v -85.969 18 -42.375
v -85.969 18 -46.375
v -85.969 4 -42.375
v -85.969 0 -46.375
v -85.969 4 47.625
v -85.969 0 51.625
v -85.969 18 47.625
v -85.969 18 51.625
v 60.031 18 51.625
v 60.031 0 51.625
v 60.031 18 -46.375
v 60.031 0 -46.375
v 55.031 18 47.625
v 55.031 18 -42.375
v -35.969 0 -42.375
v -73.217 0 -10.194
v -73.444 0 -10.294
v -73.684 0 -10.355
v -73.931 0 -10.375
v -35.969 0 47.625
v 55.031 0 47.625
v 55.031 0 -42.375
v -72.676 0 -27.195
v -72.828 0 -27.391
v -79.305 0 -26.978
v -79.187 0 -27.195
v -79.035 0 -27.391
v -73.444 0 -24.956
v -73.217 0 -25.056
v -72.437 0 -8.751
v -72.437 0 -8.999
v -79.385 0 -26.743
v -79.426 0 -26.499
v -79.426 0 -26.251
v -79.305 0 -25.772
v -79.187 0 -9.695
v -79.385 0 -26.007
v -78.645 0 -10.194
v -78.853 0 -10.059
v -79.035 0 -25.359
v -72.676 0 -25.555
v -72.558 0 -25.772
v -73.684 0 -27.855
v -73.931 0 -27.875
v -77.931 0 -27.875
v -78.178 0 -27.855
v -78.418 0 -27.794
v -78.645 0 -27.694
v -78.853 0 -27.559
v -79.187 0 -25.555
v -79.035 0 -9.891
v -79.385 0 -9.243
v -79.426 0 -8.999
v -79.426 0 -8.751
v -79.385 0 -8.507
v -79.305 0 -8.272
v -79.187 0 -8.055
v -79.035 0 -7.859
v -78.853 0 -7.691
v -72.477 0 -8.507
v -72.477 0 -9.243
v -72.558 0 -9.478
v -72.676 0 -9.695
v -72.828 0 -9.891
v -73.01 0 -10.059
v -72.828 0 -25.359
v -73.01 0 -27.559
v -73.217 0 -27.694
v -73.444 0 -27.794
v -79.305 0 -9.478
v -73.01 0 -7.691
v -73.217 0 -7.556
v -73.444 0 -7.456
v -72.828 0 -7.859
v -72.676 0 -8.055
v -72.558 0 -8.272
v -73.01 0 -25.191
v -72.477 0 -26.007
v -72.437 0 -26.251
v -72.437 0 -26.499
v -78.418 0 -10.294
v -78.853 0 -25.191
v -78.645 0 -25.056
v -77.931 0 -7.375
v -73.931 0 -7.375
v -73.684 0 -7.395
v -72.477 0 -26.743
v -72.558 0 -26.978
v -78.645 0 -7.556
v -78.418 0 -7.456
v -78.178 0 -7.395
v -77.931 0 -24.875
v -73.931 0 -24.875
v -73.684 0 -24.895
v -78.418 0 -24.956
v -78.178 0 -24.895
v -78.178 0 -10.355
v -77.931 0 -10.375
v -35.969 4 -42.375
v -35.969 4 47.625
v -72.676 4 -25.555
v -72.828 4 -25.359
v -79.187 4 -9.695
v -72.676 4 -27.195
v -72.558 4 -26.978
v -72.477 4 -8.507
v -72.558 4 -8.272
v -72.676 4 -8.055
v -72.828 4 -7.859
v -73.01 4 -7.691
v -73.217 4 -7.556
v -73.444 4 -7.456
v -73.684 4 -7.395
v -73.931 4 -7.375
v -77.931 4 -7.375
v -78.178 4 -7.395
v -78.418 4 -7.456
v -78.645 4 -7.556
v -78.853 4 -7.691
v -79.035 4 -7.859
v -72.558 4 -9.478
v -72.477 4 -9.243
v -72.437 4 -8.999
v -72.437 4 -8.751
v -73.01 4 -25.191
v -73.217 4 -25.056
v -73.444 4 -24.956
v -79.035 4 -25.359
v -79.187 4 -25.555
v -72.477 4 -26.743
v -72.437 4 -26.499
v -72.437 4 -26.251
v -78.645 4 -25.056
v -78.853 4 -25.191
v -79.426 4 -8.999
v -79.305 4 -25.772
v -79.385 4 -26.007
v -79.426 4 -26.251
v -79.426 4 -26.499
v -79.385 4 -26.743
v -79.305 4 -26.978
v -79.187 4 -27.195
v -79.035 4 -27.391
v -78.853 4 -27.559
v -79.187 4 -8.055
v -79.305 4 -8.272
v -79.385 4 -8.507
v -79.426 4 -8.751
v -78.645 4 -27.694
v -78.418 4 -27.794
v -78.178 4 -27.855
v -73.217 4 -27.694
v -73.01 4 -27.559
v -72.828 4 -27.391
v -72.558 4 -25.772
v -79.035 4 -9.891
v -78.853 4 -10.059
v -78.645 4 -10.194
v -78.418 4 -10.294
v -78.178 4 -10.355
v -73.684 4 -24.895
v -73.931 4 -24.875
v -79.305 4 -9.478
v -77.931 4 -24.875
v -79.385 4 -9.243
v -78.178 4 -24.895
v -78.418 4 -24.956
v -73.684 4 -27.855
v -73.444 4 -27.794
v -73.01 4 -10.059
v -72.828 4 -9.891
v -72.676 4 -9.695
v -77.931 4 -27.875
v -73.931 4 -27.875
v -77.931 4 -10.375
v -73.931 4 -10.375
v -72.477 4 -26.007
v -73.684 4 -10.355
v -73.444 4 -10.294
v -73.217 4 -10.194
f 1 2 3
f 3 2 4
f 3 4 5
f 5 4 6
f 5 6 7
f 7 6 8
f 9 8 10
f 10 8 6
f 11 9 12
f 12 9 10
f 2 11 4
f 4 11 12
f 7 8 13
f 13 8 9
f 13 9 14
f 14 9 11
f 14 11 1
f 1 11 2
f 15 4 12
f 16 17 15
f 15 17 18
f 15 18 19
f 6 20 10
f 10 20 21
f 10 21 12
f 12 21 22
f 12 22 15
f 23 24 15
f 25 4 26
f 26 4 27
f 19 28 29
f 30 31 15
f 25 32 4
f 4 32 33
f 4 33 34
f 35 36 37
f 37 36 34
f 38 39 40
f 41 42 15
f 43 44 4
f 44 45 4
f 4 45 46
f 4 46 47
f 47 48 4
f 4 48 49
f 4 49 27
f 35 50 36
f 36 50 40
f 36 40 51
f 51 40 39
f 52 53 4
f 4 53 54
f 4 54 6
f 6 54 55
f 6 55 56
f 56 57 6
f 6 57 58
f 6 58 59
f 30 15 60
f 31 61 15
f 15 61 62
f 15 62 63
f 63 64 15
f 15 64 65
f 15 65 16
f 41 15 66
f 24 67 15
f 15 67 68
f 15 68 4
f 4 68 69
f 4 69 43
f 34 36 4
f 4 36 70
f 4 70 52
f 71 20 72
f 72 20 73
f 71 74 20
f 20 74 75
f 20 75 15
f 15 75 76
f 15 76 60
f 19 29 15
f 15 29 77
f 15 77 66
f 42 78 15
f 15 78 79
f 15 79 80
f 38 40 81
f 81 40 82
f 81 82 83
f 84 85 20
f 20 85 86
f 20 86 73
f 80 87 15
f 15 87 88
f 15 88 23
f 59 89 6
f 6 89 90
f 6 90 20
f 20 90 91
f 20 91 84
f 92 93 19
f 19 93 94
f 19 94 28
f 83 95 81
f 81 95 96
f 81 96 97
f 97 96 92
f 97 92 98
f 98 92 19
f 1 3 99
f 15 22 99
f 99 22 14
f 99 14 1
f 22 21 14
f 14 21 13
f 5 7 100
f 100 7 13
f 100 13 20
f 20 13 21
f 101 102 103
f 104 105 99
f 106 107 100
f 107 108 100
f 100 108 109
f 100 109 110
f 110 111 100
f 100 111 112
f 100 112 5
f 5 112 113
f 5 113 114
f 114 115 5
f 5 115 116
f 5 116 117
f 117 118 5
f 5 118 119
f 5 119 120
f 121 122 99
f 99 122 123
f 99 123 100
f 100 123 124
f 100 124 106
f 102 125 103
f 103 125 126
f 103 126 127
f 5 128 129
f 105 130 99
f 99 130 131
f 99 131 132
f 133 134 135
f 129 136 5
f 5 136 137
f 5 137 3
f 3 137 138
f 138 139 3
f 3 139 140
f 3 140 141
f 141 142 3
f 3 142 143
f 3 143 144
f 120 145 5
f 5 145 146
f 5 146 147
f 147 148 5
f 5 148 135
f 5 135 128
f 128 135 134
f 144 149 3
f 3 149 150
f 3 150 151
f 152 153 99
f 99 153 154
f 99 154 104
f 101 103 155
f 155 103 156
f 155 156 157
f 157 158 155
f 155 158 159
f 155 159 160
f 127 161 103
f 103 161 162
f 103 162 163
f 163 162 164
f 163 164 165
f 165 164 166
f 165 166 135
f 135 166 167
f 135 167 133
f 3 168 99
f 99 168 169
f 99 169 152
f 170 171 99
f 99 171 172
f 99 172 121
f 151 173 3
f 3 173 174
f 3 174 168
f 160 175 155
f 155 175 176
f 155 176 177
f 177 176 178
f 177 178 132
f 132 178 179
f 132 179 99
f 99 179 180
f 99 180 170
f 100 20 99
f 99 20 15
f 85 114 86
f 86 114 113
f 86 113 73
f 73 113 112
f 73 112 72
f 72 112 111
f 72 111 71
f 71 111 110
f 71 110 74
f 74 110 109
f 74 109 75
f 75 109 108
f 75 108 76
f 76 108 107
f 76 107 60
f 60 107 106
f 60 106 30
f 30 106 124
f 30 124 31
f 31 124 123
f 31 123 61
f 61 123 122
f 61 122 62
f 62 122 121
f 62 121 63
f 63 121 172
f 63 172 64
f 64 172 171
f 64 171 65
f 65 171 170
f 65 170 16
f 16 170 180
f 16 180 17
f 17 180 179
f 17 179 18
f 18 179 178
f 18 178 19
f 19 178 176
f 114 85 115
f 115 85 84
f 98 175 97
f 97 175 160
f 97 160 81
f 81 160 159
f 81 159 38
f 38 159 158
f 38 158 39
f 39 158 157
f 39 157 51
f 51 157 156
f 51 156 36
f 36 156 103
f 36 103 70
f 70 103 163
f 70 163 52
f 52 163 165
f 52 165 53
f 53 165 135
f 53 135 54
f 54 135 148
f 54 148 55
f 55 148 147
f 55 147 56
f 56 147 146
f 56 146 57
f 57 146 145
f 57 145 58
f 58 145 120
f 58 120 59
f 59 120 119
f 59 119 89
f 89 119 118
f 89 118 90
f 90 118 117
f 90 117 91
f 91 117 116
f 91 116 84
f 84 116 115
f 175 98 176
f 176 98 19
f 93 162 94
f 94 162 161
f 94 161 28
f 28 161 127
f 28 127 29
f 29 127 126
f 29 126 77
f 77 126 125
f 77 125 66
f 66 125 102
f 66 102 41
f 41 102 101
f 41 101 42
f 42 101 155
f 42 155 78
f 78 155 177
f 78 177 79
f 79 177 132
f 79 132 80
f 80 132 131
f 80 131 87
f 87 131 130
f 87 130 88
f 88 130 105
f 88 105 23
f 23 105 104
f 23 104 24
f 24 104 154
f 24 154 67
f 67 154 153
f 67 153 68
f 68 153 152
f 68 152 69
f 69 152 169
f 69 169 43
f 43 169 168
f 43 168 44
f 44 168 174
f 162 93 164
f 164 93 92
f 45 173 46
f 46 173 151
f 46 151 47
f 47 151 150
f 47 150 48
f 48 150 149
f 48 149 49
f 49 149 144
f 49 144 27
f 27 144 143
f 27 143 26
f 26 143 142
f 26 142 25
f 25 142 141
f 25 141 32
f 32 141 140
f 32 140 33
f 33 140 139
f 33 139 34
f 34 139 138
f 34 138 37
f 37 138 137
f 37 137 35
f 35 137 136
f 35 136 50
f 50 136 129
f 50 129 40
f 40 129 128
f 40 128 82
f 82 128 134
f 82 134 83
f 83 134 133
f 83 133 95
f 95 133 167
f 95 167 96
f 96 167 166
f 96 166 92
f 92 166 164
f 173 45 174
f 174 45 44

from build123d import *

# Parameters (mm, degrees)
SKETCH_1_W          = 146
SKETCH_1_H          = 98
EXTRUDE_1_DEPTH     = 18
SKETCH_2_W          = 141
SKETCH_2_H          = 90
CUT_EXTRUDE_1_DEPTH = 14
SKETCH_3_W          = 91
SKETCH_3_H          = 90
CUT_EXTRUDE_2_DEPTH = 17
CUT_EXTRUDE_3_DEPTH = 17


with BuildPart() as part:
    # 草图1 → 凸台-拉伸1 (new body)
    with BuildSketch(Plane(origin=(0, 0, 0), x_dir=(1, 0, 0), z_dir=(0, 1, 0))):
        with Locations((-12.96875, -2.625)):
            Rectangle(SKETCH_1_W, SKETCH_1_H)
    extrude(amount=EXTRUDE_1_DEPTH)

    # 草图2 → 切除-拉伸1 (cut)
    with BuildSketch(Plane(origin=(0, 18, 0), x_dir=(1, 0, 0), z_dir=(0, 1, 0))):
        with Locations((-15.46875, -2.625)):
            Rectangle(SKETCH_2_W, SKETCH_2_H)
    extrude(amount=-CUT_EXTRUDE_1_DEPTH, mode=Mode.SUBTRACT)

    # 草图3 → 切除-拉伸2 (cut)
    with BuildSketch(Plane(origin=(0, 4, 0), x_dir=(1, 0, 0), z_dir=(0, 1, 0))):
        with Locations((9.53125, -2.625)):
            Rectangle(SKETCH_3_W, SKETCH_3_H)
    extrude(amount=-CUT_EXTRUDE_2_DEPTH, mode=Mode.SUBTRACT)

    # 草图5 → 切除-拉伸3 (cut)
    with BuildSketch(Plane(origin=(0, 4, 0), x_dir=(1, 0, 0), z_dir=(0, 1, 0))):
        with BuildLine():
            Line((-73.931388989, 24.875), (-77.931388989, 24.875))
            ThreePointArc((-77.931388989, 24.875), (-79.431388989, 26.375), (-77.931388989, 27.875))
            Line((-77.931388989, 27.875), (-73.931388989, 27.875))
            ThreePointArc((-73.931388989, 27.875), (-72.431388989, 26.375), (-73.931388989, 24.875))
        make_face()
        with BuildLine():
            Line((-73.931388989, 7.375), (-77.931388989, 7.375))
            ThreePointArc((-77.931388989, 7.375), (-79.431388989, 8.875), (-77.931388989, 10.375))
            Line((-77.931388989, 10.375), (-73.931388989, 10.375))
            ThreePointArc((-73.931388989, 10.375), (-72.431388989, 8.875), (-73.931388989, 7.375))
        make_face()
    extrude(amount=-CUT_EXTRUDE_3_DEPTH, mode=Mode.SUBTRACT)


solid = part.part
